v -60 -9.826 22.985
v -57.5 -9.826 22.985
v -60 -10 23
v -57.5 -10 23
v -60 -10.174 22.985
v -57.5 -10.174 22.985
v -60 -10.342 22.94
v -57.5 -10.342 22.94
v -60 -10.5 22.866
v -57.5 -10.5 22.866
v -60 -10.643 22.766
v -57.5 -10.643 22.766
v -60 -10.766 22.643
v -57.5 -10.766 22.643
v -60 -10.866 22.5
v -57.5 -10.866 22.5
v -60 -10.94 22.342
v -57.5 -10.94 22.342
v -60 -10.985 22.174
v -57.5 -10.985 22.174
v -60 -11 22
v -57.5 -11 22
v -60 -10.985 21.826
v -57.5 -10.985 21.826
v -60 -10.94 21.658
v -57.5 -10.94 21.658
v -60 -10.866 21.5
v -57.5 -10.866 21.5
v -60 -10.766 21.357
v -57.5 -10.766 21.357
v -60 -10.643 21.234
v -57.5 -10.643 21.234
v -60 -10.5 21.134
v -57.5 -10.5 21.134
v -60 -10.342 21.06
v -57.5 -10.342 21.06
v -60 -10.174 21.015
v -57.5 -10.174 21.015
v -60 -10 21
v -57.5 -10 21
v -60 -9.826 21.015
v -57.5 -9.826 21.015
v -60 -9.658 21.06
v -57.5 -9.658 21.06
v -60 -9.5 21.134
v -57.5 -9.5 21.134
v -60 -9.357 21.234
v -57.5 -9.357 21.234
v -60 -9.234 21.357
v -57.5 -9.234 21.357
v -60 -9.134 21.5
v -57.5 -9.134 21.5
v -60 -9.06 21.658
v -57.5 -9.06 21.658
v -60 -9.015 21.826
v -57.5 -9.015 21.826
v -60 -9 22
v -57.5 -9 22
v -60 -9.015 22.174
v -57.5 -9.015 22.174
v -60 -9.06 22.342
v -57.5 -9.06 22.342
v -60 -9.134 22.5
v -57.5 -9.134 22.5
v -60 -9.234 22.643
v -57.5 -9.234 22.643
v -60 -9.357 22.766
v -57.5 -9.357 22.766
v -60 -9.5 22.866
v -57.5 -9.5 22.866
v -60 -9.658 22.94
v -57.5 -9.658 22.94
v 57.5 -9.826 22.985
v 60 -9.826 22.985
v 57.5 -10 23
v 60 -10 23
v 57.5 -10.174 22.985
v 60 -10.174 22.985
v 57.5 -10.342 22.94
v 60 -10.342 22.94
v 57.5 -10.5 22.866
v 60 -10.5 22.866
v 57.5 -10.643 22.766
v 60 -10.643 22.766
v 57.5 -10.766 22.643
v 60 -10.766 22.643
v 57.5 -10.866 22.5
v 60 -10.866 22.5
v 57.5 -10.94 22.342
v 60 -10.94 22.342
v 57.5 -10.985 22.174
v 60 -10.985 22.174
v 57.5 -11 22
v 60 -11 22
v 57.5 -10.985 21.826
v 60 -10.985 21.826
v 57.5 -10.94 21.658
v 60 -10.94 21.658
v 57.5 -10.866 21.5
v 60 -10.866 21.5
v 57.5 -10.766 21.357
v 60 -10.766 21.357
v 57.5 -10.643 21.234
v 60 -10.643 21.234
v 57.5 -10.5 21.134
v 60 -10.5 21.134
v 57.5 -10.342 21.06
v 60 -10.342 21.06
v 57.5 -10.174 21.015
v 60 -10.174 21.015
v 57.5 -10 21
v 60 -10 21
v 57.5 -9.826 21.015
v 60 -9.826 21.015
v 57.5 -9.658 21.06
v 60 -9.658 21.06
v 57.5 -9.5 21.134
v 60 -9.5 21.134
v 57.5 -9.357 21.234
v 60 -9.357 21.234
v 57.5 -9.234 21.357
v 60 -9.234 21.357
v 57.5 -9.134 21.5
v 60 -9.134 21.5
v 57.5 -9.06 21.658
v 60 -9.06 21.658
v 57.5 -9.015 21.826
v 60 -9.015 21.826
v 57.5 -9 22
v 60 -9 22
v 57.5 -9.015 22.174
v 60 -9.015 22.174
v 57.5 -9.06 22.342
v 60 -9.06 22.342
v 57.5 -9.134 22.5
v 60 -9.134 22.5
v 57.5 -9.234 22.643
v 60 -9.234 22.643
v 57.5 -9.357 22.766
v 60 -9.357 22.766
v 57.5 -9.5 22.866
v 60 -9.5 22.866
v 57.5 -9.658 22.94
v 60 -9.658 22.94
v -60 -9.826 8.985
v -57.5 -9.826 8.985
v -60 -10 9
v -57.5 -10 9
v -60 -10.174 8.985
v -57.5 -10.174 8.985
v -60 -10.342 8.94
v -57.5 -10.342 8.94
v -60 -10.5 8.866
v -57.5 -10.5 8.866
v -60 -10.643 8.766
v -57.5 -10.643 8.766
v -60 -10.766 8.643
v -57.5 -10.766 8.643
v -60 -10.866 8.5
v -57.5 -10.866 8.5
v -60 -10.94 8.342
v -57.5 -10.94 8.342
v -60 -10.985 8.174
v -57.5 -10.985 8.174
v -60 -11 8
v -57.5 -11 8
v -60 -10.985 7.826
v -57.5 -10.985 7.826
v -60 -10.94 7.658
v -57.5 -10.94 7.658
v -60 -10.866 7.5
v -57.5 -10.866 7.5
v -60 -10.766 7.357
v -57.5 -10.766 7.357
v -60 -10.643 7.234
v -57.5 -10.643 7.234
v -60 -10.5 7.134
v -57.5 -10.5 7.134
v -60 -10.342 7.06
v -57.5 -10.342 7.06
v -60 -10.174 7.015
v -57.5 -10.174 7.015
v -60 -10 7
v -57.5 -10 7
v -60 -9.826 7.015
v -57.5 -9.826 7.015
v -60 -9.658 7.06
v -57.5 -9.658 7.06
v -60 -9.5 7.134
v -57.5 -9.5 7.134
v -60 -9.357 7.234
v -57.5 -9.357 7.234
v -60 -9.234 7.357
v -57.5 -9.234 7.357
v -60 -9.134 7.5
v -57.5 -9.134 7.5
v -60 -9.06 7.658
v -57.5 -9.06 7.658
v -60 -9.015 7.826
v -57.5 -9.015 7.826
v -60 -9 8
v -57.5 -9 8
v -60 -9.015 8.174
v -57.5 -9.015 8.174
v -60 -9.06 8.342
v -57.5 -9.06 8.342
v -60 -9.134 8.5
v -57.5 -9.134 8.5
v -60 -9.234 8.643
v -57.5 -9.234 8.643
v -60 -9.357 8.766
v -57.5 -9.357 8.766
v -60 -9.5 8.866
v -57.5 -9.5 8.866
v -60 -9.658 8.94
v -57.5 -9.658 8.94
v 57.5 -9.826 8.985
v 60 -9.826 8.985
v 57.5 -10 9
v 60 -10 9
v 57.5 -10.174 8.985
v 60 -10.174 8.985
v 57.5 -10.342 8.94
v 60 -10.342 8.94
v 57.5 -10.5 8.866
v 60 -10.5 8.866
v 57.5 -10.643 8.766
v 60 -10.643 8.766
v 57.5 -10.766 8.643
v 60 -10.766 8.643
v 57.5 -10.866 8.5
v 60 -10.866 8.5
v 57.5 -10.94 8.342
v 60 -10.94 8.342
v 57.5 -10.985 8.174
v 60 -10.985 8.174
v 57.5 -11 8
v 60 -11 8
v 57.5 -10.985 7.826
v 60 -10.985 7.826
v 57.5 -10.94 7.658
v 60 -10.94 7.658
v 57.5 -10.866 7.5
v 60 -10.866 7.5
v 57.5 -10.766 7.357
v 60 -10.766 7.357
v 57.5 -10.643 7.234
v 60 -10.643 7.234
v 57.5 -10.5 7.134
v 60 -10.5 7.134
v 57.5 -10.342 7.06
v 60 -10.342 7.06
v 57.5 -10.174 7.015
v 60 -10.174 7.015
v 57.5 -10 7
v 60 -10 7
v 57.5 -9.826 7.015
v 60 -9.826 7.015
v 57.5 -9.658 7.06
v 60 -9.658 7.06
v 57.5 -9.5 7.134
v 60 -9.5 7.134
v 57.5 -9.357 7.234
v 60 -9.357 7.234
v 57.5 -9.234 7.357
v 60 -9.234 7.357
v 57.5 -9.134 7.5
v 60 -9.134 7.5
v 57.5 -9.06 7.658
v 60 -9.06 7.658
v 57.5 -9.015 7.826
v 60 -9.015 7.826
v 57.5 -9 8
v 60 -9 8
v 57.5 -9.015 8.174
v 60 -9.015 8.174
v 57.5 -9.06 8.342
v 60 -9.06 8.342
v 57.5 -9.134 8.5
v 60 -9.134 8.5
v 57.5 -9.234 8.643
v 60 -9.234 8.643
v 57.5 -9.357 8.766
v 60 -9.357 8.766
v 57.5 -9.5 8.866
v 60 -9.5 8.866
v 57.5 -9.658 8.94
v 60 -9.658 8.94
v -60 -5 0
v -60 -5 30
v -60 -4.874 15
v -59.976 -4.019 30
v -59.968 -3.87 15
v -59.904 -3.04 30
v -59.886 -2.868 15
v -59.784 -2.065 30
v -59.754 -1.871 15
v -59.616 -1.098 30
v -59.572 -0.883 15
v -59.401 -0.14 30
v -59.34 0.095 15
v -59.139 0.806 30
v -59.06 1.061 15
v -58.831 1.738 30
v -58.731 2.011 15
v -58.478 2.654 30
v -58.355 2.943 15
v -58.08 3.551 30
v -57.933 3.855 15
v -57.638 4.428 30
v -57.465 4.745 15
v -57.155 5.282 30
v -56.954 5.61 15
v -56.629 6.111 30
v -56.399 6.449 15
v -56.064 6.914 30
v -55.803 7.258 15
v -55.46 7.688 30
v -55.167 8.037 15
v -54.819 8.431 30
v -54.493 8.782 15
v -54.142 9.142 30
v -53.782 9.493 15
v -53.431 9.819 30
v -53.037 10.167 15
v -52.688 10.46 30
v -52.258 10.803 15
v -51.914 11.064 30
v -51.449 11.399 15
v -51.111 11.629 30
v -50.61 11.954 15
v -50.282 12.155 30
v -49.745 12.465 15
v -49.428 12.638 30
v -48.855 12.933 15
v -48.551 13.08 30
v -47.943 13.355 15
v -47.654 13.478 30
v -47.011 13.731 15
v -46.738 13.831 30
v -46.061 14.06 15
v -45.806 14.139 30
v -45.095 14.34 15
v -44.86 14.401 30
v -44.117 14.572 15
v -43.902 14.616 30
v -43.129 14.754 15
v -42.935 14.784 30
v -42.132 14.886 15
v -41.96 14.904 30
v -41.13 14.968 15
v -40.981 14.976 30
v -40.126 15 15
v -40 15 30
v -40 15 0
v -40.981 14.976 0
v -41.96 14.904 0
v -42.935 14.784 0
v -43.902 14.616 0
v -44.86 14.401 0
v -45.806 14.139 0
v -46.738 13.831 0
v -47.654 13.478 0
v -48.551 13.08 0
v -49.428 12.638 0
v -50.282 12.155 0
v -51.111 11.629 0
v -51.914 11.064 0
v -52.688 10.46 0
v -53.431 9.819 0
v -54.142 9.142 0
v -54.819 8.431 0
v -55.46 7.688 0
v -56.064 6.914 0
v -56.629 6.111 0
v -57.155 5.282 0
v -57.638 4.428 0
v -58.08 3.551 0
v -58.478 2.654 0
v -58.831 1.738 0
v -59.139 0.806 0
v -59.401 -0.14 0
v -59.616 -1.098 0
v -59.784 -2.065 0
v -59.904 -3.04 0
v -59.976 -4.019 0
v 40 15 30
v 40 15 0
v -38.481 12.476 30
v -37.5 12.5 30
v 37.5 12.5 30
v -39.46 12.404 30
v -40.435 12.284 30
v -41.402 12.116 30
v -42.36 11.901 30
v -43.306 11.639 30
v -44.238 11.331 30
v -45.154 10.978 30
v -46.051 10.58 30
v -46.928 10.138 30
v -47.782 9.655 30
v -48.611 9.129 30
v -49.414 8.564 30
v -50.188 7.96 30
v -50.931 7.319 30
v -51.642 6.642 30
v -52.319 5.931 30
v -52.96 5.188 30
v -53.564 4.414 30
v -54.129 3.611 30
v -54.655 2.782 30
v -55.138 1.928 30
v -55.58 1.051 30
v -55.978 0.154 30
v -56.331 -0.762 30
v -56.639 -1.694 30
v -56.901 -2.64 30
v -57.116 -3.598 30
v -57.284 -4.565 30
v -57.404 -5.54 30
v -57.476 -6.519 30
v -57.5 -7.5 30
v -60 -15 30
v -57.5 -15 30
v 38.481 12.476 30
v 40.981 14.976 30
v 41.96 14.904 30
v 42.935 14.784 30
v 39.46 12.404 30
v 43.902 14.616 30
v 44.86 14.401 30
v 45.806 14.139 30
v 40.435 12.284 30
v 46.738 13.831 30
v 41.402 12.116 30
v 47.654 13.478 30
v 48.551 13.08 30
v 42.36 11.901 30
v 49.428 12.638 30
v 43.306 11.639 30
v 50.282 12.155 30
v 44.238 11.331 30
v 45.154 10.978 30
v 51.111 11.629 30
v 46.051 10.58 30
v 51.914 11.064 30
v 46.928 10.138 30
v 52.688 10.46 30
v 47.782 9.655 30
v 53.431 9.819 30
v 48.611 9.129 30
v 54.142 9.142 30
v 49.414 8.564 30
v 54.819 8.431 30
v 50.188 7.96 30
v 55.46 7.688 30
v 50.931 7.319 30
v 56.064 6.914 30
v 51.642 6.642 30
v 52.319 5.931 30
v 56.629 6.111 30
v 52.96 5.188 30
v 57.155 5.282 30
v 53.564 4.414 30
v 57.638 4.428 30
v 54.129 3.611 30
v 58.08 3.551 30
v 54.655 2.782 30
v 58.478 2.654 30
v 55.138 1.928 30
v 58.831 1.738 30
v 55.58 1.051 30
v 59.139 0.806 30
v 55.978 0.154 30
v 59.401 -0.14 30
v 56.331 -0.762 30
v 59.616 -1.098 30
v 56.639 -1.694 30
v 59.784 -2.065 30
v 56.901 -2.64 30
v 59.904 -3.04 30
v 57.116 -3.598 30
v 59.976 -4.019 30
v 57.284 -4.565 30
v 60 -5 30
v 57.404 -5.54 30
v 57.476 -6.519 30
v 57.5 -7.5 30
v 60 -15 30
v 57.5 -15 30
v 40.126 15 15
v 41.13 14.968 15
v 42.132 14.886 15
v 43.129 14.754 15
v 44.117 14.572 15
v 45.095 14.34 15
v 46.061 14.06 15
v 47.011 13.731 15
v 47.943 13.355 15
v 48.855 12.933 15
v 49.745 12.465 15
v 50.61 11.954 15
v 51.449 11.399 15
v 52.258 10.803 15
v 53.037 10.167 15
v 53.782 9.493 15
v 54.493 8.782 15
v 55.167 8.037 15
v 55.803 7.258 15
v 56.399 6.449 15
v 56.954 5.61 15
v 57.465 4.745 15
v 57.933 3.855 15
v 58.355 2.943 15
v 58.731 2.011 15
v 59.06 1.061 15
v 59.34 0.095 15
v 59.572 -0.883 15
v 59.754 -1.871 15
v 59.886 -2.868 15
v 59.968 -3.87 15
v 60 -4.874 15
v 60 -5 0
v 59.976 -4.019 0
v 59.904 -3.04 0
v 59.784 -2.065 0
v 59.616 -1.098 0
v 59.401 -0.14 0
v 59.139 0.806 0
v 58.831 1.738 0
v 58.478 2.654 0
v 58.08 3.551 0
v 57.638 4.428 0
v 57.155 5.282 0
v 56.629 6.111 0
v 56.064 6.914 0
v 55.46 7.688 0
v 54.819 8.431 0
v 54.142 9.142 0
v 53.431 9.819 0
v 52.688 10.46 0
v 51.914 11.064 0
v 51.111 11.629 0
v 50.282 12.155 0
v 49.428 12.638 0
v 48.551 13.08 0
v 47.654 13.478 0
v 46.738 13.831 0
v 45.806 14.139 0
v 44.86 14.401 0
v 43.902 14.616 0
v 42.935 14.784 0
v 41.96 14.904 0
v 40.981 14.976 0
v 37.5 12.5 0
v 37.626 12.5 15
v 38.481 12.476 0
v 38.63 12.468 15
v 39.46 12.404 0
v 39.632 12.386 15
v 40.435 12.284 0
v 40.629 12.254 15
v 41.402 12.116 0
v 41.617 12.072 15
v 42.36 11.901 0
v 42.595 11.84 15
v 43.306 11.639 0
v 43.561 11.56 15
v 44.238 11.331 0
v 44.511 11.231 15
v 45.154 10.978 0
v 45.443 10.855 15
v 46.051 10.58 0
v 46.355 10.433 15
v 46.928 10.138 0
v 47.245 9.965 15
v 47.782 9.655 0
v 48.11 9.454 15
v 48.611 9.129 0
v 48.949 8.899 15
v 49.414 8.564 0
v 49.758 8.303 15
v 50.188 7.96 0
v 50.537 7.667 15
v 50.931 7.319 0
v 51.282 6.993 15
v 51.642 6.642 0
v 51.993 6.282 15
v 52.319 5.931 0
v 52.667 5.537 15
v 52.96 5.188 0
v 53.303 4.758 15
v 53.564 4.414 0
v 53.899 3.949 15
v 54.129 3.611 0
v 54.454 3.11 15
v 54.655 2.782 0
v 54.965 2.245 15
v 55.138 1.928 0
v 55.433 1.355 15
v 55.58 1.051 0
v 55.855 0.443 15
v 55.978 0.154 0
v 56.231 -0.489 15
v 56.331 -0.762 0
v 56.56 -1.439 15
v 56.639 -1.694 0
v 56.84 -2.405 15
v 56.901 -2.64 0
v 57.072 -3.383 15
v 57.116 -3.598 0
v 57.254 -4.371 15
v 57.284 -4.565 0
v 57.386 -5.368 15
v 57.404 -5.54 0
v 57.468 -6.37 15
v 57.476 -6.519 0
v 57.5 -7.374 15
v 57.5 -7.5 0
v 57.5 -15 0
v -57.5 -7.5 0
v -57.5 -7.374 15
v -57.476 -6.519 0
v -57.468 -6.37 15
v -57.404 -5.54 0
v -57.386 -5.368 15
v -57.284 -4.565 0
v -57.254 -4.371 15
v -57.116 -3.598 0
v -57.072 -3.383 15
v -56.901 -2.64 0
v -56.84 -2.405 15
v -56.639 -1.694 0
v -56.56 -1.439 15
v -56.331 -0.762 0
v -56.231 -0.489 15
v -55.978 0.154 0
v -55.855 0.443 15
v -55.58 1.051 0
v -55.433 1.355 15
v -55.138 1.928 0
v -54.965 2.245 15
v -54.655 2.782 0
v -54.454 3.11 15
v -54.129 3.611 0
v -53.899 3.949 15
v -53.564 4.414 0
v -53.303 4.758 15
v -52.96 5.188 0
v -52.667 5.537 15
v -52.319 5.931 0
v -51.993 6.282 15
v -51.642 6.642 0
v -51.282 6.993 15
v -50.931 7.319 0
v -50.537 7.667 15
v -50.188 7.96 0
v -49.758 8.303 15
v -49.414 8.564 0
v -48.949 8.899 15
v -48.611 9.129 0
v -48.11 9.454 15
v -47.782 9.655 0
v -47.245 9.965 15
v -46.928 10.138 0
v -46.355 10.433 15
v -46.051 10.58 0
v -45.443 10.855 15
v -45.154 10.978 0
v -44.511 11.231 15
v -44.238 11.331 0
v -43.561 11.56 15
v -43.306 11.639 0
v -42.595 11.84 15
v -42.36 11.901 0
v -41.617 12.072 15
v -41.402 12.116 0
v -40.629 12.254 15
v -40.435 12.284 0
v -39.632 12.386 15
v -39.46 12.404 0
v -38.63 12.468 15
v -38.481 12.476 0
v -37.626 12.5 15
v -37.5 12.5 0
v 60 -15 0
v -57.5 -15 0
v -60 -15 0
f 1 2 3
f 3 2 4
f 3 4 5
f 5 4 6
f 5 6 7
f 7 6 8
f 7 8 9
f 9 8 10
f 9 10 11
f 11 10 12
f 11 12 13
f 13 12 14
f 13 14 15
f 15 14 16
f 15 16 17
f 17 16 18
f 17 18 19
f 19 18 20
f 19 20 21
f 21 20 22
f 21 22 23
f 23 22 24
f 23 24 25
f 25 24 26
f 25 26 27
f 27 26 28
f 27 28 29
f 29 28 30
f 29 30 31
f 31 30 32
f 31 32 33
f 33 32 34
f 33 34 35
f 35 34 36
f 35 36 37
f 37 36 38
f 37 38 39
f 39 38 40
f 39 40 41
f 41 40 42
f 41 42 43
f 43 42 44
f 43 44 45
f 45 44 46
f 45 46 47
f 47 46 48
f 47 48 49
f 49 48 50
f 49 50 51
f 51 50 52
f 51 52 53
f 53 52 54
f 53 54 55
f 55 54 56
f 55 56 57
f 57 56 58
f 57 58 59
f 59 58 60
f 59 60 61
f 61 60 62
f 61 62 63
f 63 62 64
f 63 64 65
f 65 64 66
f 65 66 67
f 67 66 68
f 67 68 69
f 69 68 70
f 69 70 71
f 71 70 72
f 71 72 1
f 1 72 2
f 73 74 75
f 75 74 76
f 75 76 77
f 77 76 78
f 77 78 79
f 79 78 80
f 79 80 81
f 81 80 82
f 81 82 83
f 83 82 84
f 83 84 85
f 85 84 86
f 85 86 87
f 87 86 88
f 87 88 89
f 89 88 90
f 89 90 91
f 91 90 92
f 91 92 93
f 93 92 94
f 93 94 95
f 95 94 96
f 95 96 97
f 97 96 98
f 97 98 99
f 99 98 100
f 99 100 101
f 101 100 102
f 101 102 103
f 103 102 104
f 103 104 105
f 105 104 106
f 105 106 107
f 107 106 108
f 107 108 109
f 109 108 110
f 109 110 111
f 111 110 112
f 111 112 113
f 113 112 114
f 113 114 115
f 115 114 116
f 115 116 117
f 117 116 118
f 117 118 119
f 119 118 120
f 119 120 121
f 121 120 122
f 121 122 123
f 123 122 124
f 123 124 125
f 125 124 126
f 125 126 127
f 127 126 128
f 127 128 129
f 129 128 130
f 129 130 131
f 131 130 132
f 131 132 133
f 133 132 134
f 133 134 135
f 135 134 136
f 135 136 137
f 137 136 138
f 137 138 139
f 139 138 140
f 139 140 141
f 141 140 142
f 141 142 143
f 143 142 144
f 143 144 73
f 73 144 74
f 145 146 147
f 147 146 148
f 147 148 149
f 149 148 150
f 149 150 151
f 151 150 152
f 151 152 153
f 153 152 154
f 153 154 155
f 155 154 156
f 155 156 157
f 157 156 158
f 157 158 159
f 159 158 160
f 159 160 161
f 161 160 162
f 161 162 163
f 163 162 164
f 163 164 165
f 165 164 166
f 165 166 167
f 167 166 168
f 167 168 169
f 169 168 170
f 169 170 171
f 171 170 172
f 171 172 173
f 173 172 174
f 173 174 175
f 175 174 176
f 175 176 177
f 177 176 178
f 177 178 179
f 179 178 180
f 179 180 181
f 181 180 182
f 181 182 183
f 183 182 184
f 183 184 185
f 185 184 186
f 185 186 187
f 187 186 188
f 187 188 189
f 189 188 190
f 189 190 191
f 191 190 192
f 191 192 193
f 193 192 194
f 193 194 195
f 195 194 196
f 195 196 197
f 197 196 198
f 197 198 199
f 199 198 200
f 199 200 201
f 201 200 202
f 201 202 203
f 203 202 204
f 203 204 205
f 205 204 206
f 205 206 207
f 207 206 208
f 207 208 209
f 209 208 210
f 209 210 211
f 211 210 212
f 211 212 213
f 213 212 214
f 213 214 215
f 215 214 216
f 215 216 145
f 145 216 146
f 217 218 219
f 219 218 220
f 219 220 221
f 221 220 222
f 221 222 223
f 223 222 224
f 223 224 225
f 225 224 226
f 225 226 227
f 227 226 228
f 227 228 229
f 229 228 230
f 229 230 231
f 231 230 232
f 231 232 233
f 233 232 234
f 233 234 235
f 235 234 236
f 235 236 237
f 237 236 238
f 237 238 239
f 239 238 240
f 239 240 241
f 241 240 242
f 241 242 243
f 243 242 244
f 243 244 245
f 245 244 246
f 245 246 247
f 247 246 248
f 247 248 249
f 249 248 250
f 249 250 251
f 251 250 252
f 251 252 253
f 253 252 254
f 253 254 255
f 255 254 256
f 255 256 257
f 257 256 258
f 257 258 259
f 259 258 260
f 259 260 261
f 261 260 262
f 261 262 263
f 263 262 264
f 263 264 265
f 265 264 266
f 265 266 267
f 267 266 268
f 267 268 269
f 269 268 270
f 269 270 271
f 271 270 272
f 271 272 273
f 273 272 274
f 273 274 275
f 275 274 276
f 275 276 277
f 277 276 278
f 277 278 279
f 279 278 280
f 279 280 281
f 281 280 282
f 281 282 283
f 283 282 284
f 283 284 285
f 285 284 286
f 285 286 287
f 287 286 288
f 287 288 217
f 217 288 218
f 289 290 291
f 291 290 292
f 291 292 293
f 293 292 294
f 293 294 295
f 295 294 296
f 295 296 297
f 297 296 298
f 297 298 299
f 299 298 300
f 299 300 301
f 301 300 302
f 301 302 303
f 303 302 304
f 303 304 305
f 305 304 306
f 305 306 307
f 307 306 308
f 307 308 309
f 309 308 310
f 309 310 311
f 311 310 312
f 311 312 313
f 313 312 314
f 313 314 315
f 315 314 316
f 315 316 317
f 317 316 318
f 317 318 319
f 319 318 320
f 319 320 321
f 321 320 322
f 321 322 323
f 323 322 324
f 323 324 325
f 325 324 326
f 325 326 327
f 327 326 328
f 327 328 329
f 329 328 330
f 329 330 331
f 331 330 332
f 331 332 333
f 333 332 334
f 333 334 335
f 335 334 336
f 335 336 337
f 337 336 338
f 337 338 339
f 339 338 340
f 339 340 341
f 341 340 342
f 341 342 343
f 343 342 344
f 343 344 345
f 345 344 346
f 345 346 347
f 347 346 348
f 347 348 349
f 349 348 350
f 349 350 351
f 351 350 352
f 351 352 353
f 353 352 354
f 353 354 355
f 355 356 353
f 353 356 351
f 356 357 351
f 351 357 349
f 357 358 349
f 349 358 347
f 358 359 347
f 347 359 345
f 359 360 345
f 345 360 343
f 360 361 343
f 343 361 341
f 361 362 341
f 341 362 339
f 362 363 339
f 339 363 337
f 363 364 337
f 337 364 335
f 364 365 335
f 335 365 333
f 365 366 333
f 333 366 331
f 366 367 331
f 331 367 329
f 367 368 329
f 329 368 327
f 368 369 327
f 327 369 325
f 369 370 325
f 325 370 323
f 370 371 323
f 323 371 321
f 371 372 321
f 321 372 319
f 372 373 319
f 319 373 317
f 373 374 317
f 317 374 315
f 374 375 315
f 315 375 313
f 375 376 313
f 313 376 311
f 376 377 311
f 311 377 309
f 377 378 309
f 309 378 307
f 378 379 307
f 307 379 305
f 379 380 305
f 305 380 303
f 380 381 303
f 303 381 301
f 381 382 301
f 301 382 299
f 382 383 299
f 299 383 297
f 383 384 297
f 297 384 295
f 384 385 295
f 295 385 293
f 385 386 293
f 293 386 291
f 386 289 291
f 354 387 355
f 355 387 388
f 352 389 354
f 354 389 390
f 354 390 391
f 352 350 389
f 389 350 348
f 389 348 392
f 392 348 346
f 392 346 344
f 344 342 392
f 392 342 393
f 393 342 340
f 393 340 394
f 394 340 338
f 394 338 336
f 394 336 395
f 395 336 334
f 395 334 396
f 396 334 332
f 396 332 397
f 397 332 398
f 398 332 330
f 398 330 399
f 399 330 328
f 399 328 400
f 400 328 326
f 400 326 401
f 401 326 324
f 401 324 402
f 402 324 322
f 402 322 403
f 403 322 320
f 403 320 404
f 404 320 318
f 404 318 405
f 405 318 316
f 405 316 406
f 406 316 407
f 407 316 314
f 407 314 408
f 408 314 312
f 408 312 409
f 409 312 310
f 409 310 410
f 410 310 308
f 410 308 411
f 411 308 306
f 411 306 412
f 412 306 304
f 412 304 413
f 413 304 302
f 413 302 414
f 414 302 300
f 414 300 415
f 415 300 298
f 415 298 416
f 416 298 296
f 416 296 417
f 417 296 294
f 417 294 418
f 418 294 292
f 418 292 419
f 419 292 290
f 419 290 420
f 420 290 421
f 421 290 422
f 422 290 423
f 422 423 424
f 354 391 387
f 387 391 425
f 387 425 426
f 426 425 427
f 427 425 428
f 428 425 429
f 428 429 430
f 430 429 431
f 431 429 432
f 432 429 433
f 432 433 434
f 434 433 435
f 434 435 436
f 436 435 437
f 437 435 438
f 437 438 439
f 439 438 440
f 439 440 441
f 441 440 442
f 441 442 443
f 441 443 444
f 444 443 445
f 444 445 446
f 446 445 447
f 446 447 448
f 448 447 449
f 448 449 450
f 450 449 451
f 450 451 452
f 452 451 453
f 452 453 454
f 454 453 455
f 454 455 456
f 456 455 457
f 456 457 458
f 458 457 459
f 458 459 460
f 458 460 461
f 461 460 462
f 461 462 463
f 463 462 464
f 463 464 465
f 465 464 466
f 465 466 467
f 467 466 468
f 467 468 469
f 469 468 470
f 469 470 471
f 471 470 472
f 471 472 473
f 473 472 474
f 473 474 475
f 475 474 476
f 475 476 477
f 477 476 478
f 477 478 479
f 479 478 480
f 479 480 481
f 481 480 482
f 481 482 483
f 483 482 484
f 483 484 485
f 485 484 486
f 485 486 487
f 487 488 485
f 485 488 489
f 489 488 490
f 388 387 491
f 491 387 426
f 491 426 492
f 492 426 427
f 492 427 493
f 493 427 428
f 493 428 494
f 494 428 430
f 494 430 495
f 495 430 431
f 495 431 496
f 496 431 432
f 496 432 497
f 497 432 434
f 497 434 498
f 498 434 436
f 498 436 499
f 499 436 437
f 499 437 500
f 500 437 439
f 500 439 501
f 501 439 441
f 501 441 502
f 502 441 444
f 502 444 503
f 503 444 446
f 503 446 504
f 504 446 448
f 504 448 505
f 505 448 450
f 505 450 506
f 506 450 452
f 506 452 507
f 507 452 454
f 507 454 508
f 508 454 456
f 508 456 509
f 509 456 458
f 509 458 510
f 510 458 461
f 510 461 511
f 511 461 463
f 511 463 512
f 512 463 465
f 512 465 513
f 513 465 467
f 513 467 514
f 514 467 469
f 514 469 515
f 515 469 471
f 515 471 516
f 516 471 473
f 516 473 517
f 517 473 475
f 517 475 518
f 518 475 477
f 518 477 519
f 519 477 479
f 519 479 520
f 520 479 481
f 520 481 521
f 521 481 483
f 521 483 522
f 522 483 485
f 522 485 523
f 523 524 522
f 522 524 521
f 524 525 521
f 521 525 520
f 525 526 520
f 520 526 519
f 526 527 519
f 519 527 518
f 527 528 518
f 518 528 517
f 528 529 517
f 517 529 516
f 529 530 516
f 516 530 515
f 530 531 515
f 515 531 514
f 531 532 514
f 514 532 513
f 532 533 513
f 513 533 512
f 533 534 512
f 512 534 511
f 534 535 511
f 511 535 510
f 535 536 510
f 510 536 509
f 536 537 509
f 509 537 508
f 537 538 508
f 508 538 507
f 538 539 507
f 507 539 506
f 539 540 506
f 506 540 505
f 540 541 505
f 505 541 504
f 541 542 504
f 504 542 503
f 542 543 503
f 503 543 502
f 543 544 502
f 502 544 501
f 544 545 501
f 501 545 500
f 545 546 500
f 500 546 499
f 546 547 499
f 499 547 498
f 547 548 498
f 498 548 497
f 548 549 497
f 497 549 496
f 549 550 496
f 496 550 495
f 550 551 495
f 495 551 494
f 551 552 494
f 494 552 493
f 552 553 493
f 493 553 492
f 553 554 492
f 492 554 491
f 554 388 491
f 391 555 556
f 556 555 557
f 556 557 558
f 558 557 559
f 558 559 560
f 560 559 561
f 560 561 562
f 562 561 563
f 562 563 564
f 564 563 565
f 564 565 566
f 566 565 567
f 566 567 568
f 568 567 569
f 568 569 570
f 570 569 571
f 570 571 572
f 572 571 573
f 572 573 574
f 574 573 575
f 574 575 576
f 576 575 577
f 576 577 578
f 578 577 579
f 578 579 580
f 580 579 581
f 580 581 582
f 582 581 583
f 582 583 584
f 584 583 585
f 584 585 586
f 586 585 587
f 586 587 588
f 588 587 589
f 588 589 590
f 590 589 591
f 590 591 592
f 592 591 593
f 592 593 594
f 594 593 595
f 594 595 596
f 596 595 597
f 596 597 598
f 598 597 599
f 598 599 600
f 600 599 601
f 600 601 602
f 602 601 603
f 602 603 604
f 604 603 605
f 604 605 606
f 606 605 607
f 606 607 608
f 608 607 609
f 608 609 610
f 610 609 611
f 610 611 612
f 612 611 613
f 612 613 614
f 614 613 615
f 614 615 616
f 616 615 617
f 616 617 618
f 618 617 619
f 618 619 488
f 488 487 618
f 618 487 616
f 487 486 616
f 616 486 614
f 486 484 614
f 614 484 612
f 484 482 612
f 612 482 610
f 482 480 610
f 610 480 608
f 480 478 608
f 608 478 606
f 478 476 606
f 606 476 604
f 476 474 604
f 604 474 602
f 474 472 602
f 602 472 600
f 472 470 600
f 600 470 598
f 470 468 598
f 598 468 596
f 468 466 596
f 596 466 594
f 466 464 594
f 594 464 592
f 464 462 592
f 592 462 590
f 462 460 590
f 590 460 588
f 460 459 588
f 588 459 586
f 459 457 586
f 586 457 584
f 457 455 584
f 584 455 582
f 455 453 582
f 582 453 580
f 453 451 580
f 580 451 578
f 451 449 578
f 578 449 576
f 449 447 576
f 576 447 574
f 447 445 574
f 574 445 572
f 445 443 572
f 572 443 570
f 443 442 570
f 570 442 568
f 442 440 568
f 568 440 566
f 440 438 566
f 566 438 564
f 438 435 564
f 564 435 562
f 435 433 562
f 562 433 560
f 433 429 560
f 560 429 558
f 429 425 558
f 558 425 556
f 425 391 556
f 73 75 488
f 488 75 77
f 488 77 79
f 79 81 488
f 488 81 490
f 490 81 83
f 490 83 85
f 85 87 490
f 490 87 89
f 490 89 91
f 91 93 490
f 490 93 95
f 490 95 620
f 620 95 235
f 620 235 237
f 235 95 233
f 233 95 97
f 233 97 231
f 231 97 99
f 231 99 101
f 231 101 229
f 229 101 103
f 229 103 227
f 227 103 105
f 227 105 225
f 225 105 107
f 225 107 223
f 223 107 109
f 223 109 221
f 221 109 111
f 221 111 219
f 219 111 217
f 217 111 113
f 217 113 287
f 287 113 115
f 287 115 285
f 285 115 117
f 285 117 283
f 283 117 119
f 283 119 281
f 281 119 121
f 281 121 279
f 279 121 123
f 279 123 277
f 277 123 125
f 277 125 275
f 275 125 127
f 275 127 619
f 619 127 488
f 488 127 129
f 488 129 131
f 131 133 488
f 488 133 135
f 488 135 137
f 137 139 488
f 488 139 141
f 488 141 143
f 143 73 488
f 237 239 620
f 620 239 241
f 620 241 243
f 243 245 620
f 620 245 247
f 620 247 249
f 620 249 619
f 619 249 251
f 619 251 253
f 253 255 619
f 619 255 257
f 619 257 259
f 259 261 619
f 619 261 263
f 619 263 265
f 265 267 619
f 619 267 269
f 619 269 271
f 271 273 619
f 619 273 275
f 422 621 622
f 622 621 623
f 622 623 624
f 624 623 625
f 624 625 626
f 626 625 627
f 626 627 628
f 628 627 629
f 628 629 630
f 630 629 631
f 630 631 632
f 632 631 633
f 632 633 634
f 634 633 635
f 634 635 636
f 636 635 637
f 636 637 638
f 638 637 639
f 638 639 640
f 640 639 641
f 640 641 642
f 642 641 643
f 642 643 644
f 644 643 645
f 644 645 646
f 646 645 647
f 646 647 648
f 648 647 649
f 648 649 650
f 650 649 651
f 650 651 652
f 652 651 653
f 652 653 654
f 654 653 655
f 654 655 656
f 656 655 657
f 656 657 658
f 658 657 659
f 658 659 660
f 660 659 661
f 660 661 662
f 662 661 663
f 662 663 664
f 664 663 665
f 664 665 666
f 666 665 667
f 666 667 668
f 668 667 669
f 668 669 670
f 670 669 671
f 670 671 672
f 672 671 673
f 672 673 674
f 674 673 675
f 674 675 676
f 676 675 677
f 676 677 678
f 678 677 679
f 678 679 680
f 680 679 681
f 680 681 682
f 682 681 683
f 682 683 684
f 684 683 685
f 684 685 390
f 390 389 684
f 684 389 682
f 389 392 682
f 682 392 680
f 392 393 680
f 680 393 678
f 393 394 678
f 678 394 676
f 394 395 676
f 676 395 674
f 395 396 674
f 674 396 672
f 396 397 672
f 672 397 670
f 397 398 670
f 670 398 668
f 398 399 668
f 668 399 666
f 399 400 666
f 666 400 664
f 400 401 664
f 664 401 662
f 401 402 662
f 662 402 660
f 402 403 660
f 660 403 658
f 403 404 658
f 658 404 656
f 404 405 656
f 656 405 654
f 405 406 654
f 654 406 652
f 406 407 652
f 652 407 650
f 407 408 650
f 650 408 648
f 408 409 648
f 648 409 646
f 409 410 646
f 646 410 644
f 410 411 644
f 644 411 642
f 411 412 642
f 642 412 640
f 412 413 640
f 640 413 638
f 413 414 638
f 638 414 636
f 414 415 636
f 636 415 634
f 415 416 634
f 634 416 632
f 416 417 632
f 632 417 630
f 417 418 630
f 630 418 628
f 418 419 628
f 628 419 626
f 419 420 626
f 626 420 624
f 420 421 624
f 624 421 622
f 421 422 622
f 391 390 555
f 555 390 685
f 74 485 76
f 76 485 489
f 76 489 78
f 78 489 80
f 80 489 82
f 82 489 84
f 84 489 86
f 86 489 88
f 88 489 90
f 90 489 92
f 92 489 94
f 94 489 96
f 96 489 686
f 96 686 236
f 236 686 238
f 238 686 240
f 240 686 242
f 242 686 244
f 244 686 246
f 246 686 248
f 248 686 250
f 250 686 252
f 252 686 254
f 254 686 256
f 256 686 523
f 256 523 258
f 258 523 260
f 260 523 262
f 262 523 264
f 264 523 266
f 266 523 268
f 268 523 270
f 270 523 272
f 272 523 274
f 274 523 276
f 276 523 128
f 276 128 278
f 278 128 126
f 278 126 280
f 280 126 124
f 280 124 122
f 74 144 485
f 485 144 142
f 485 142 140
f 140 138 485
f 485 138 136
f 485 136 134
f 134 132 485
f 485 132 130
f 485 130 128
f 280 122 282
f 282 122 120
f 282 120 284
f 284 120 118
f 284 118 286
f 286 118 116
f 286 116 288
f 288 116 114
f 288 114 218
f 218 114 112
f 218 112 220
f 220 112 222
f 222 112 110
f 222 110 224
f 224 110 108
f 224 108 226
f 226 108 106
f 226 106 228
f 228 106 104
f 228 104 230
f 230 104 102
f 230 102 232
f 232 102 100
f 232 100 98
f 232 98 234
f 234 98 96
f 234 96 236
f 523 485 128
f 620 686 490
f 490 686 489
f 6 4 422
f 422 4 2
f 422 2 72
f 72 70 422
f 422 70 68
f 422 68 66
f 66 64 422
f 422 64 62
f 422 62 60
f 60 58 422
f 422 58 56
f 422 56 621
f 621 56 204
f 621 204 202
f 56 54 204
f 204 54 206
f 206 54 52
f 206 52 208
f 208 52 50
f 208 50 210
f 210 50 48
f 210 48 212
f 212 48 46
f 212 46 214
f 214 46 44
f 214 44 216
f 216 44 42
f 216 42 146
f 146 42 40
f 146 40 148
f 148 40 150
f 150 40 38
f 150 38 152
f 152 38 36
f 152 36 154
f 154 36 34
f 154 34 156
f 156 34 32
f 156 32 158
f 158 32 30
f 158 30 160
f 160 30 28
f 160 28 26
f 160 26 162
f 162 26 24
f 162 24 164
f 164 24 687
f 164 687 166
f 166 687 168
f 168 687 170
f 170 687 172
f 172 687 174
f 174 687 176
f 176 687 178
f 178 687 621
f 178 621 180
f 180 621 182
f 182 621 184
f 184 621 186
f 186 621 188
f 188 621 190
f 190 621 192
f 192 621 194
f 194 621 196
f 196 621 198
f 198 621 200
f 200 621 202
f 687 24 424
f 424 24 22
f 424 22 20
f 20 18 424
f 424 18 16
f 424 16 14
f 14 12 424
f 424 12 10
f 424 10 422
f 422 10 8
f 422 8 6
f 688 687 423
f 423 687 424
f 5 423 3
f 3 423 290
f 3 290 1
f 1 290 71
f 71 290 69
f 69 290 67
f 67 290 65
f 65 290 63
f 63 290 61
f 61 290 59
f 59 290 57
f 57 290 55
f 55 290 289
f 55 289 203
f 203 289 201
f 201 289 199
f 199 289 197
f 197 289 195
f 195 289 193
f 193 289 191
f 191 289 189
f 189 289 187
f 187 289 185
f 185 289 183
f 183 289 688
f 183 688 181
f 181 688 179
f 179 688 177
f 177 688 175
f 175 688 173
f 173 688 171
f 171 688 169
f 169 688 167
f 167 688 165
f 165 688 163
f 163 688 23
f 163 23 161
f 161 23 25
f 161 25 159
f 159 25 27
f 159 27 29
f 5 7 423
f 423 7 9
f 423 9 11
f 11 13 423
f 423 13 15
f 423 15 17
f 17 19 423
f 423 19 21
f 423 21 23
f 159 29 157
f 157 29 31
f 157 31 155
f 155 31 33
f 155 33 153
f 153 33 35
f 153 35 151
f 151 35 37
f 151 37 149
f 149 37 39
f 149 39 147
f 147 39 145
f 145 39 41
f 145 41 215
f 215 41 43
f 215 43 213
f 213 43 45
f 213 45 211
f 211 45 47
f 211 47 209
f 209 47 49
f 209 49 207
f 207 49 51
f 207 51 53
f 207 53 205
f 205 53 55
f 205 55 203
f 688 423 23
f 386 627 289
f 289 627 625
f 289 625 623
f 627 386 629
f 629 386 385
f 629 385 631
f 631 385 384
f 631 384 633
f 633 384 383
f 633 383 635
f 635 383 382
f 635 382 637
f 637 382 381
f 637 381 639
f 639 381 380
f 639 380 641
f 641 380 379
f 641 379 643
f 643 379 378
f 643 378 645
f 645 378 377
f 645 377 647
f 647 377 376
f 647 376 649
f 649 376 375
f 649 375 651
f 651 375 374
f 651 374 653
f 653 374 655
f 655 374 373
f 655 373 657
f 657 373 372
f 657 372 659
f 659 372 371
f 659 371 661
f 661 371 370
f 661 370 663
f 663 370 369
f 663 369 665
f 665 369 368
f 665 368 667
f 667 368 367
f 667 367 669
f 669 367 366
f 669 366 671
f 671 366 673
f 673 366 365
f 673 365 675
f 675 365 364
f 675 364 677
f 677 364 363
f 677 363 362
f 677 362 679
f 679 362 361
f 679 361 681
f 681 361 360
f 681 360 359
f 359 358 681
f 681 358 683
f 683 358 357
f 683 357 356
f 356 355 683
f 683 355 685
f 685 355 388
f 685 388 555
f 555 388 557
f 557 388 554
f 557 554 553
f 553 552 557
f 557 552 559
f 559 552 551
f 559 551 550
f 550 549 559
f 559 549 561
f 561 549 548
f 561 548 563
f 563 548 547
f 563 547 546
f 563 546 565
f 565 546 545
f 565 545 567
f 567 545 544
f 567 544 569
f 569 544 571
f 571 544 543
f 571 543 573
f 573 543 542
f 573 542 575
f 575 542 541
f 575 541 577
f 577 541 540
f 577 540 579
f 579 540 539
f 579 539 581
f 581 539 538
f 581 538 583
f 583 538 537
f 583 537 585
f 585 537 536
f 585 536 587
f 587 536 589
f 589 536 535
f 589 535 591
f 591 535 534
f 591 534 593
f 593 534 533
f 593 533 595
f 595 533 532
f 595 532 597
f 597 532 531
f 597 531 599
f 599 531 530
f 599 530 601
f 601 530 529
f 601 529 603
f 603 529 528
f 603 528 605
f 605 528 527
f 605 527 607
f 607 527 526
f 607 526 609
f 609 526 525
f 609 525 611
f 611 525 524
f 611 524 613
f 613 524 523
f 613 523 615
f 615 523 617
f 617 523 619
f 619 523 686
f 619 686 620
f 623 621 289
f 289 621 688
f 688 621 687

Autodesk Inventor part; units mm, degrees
ref_plane "YZ Plane" through (0, 0, 0) normal (1, 0, 0) x (0, 1, 0)
ref_plane "XZ Plane" through (0, 0, 0) normal (0, 1, 0) x (-1, 0, 0)
ref_plane "XY Plane" through (0, 0, 0) normal (0, 0, 1) x (1, 0, 0)
sketch "Sketch1" plane through (0, 0, 0) normal (0, 0, 1) x (1, 0, 0)
  line L0 (60, 15) -> (-60, 15)
  line L1 (-60, 15) -> (-60, -15)
  line L2 (60, -15) -> (60, 15)
  line L3 (60, 15) -> (-60, -15) construction
  line L4 (-60, 15) -> (60, -15) construction
  line L5 (57.5, 12.5) -> (-57.5, 12.5)
  line L6 (-57.5, 12.5) -> (-57.5, -15)
  line L7 (57.5, -15) -> (57.5, 12.5)
  line L8 (-60, -15) -> (-57.5, -15)
  line L9 (57.5, -15) -> (60, -15)
  point P0 (0, 0)
  dimension "d0" = 120
  dimension "d1" = 30
extrude "Extrusion1" add sketch "Sketch1" along normal blind 30
fillet "Fillet1" radius 20 4 edges at (60, 15, 15) (-60, 15, 15) (-57.5, 12.5, 15) (57.5, 12.5, 15)
sketch "Sketch2" plane through (-60, -15, 0) normal (-1, 0, 0) x (0, 0, 1)
  line L0 (33.379, 5) -> (-9.3676, 5) construction
  line L1 (0, 0) -> (30, 0) projected
  line L2 (22, 36.2118) -> (22, -4.5967) construction
  line L3 (8, 36.2118) -> (8, -2.8739) construction
  line L4 (30, 10) -> (30, 0) construction
  line L5 (0, 10) -> (0, 0) construction
  circle A0 centre (22, 5) radius 1
  circle A1 centre (8, 5) radius 1
  point P0 (0, 15)
  dimension "d7" = 5
  dimension "d8" = 8
  dimension "d9" = 8
  dimension "d10" = 2
  dimension "d11" = 2
extrude "Extrusion2" cut sketch "Sketch2" against normal blind 120
equation "\"d8\" = d9"
properties part number "Bumper"
